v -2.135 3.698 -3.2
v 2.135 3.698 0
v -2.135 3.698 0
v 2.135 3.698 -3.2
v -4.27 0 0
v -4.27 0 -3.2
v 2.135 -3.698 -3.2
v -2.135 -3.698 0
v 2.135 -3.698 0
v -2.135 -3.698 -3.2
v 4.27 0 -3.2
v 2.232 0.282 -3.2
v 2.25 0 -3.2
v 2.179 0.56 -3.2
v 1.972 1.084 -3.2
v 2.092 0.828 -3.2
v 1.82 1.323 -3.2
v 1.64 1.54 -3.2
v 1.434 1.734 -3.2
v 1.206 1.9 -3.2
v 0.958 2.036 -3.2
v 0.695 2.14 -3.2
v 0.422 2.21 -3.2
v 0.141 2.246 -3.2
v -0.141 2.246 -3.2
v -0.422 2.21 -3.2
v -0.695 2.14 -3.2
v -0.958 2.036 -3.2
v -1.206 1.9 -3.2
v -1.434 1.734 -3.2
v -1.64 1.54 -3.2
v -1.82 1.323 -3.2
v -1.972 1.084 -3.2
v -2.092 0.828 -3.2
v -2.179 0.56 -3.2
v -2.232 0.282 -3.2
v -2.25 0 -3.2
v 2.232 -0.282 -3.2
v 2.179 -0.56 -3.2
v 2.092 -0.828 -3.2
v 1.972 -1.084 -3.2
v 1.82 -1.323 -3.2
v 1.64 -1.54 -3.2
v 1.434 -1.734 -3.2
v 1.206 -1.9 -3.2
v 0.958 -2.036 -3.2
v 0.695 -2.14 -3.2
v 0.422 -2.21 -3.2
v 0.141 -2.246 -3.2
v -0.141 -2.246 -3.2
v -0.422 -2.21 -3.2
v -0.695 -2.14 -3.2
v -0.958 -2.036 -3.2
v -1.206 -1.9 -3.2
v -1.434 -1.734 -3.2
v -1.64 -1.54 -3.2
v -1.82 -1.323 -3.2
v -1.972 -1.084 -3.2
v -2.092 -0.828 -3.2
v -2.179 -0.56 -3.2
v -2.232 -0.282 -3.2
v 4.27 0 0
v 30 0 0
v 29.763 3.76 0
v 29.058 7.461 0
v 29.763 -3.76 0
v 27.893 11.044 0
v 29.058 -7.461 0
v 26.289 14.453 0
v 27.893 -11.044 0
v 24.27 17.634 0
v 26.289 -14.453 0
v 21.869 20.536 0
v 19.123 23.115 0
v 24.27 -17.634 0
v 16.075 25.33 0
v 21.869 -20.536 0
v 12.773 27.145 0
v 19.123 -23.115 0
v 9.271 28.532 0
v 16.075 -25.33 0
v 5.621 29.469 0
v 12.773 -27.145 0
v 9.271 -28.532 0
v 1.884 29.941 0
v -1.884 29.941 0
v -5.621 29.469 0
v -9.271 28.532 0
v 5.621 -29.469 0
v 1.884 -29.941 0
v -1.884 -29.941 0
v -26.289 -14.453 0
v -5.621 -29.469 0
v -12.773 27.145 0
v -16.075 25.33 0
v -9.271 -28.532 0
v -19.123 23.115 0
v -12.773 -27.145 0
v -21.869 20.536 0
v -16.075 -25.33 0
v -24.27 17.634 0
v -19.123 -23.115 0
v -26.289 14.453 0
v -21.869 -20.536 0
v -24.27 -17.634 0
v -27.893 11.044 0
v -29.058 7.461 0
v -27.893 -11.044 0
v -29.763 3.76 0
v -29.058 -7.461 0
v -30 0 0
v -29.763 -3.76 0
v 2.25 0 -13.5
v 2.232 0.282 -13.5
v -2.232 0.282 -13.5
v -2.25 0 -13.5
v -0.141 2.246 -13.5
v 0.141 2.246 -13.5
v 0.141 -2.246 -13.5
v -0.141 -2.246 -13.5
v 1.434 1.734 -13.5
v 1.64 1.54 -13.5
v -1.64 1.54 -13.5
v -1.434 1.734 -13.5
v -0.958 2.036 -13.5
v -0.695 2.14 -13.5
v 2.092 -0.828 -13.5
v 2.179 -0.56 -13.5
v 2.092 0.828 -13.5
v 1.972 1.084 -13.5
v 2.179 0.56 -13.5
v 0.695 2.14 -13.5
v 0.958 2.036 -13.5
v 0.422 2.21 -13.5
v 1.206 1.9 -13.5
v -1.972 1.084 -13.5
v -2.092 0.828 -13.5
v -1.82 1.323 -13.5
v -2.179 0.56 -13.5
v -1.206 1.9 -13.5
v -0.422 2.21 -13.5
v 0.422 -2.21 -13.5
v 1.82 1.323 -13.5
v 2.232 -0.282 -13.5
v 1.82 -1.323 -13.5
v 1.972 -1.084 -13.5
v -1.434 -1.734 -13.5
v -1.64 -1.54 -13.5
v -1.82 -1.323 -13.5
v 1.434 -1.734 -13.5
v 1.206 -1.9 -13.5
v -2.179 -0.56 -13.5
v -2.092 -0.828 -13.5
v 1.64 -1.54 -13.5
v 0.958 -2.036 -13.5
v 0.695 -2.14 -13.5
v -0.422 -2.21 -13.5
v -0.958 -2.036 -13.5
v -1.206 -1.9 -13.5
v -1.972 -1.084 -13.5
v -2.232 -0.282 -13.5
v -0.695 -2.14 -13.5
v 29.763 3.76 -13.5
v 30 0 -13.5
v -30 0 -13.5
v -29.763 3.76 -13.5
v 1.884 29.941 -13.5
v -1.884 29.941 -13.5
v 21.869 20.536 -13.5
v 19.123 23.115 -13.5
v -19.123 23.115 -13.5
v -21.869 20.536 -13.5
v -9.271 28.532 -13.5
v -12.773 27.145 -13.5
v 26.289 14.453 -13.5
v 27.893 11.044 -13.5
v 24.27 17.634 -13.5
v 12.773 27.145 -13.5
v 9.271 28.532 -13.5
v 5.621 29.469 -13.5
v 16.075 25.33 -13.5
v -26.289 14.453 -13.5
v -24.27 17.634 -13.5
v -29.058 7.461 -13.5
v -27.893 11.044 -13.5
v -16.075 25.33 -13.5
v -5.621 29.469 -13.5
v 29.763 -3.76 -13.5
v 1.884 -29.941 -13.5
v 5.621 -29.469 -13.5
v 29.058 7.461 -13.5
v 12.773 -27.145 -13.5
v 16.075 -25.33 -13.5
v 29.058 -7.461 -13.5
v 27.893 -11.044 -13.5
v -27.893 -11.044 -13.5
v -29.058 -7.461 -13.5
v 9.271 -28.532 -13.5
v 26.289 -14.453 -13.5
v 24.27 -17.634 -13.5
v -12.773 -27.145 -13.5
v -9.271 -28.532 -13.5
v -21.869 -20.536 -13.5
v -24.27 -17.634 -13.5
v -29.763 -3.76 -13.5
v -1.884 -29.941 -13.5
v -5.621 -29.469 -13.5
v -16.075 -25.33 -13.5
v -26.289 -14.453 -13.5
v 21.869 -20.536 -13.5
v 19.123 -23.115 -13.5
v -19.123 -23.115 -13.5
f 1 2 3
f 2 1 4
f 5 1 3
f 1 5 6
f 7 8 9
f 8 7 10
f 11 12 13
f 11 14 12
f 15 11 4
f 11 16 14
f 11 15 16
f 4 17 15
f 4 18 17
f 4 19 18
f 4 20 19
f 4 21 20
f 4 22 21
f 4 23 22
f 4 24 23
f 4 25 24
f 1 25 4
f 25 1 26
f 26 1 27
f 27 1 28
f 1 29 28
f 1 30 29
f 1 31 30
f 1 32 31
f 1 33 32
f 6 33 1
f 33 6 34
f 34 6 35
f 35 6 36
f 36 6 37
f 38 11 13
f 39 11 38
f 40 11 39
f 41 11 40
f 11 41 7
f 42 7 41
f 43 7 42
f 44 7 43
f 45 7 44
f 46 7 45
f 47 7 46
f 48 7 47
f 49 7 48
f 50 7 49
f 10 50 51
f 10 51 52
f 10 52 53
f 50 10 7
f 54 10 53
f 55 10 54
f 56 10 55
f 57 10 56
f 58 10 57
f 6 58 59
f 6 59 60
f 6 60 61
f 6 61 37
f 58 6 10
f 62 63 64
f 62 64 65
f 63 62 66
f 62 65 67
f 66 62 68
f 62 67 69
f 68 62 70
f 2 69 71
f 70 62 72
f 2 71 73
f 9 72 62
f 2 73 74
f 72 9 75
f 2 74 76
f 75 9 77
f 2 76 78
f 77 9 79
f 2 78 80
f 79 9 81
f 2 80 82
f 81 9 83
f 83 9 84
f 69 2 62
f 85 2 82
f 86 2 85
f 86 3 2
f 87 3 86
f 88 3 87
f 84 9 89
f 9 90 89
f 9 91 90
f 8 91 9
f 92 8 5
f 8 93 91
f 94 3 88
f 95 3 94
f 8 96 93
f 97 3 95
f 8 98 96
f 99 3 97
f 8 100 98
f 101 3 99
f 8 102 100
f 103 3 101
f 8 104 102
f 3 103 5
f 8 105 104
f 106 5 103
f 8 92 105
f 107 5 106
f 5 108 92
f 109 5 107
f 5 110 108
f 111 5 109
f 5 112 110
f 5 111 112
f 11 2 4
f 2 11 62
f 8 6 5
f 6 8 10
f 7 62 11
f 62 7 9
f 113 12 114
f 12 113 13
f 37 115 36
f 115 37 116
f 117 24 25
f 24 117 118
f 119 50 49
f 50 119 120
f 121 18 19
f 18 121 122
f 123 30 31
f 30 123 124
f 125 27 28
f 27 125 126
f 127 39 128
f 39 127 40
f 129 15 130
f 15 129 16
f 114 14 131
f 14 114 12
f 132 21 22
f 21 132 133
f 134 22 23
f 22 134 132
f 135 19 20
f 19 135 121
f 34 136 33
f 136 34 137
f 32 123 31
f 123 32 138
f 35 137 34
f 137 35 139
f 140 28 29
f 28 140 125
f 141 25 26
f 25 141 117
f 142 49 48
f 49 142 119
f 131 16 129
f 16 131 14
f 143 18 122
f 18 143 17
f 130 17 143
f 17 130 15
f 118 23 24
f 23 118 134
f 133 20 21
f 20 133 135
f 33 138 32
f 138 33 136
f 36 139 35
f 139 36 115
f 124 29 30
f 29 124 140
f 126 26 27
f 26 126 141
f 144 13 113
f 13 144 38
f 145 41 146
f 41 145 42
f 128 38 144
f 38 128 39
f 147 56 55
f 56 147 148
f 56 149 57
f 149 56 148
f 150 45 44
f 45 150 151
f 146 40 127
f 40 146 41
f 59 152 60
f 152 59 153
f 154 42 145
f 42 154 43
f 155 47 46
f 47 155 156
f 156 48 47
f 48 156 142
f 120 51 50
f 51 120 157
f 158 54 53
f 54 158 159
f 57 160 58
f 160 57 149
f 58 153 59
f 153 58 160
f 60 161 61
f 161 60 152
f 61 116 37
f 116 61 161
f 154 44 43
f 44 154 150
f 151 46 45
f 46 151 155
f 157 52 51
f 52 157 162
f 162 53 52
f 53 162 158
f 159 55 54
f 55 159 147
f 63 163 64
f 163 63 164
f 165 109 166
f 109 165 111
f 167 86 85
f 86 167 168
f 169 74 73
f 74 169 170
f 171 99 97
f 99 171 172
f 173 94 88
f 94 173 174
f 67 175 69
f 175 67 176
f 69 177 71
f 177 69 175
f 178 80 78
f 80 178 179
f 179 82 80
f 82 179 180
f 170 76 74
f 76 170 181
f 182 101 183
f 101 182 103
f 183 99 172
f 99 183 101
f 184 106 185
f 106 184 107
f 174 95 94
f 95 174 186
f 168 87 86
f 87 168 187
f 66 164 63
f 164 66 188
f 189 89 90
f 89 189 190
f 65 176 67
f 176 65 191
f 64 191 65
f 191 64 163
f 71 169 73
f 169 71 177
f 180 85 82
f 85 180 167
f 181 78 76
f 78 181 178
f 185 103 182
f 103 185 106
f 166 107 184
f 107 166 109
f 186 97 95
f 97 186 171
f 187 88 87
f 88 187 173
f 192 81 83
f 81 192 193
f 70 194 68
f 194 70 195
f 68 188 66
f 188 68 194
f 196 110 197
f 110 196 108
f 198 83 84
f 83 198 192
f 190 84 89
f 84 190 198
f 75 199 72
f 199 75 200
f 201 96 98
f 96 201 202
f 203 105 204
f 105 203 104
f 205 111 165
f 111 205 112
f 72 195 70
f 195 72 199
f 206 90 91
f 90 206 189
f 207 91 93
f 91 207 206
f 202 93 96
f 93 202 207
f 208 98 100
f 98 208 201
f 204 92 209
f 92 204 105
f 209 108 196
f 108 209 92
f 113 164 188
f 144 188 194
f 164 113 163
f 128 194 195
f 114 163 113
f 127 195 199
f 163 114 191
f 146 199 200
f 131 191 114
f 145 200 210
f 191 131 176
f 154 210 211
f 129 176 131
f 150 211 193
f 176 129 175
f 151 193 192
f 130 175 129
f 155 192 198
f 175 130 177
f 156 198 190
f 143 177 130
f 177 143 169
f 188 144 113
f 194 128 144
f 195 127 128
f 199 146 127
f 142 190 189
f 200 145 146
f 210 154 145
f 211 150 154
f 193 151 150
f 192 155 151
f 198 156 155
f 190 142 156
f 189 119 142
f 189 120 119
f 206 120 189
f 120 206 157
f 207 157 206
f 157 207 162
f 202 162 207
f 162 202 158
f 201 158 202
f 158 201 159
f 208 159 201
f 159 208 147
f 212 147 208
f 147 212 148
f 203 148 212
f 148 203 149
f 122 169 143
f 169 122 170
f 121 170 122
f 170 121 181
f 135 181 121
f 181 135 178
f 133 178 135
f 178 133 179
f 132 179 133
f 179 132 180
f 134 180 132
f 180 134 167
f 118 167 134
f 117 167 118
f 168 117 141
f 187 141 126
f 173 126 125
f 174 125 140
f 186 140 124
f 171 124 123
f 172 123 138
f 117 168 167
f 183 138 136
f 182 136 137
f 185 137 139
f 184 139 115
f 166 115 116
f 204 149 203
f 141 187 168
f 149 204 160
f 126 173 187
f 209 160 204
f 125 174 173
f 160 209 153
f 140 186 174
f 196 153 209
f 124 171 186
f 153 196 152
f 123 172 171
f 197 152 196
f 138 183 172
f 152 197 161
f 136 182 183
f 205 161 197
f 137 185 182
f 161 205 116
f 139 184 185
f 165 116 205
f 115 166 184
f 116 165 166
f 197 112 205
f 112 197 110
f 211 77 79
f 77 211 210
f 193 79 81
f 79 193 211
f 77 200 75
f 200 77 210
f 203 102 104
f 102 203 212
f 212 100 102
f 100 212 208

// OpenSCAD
$fn = 50;


difference() {
	union() {
		translate(v = [0, 0, -13.5000000000]) {
			cylinder(h = 13.5000000000, r = 30.0000000000);
		}
	}
	union() {
		translate(v = [0, 0, 0]) {
			rotate(a = [0, 0, 0]) {
				difference() {
					union() {
						translate(v = [0, 0, -3.2000000000]) {
							linear_extrude(height = 3.2000000000) {
								polygon(points = [[4.2698000000, 0.0000000000], [2.1349000000, 3.6977552691], [-2.1349000000, 3.6977552691], [-4.2698000000, 0.0000000000], [-2.1349000000, -3.6977552691], [2.1349000000, -3.6977552691]]);
							}
						}
					}
					union();
				}
			}
		}
		#translate(v = [0, 0, -100.0000000000]) {
			cylinder(h = 200, r = 2.2500000000);
		}
	}
}
